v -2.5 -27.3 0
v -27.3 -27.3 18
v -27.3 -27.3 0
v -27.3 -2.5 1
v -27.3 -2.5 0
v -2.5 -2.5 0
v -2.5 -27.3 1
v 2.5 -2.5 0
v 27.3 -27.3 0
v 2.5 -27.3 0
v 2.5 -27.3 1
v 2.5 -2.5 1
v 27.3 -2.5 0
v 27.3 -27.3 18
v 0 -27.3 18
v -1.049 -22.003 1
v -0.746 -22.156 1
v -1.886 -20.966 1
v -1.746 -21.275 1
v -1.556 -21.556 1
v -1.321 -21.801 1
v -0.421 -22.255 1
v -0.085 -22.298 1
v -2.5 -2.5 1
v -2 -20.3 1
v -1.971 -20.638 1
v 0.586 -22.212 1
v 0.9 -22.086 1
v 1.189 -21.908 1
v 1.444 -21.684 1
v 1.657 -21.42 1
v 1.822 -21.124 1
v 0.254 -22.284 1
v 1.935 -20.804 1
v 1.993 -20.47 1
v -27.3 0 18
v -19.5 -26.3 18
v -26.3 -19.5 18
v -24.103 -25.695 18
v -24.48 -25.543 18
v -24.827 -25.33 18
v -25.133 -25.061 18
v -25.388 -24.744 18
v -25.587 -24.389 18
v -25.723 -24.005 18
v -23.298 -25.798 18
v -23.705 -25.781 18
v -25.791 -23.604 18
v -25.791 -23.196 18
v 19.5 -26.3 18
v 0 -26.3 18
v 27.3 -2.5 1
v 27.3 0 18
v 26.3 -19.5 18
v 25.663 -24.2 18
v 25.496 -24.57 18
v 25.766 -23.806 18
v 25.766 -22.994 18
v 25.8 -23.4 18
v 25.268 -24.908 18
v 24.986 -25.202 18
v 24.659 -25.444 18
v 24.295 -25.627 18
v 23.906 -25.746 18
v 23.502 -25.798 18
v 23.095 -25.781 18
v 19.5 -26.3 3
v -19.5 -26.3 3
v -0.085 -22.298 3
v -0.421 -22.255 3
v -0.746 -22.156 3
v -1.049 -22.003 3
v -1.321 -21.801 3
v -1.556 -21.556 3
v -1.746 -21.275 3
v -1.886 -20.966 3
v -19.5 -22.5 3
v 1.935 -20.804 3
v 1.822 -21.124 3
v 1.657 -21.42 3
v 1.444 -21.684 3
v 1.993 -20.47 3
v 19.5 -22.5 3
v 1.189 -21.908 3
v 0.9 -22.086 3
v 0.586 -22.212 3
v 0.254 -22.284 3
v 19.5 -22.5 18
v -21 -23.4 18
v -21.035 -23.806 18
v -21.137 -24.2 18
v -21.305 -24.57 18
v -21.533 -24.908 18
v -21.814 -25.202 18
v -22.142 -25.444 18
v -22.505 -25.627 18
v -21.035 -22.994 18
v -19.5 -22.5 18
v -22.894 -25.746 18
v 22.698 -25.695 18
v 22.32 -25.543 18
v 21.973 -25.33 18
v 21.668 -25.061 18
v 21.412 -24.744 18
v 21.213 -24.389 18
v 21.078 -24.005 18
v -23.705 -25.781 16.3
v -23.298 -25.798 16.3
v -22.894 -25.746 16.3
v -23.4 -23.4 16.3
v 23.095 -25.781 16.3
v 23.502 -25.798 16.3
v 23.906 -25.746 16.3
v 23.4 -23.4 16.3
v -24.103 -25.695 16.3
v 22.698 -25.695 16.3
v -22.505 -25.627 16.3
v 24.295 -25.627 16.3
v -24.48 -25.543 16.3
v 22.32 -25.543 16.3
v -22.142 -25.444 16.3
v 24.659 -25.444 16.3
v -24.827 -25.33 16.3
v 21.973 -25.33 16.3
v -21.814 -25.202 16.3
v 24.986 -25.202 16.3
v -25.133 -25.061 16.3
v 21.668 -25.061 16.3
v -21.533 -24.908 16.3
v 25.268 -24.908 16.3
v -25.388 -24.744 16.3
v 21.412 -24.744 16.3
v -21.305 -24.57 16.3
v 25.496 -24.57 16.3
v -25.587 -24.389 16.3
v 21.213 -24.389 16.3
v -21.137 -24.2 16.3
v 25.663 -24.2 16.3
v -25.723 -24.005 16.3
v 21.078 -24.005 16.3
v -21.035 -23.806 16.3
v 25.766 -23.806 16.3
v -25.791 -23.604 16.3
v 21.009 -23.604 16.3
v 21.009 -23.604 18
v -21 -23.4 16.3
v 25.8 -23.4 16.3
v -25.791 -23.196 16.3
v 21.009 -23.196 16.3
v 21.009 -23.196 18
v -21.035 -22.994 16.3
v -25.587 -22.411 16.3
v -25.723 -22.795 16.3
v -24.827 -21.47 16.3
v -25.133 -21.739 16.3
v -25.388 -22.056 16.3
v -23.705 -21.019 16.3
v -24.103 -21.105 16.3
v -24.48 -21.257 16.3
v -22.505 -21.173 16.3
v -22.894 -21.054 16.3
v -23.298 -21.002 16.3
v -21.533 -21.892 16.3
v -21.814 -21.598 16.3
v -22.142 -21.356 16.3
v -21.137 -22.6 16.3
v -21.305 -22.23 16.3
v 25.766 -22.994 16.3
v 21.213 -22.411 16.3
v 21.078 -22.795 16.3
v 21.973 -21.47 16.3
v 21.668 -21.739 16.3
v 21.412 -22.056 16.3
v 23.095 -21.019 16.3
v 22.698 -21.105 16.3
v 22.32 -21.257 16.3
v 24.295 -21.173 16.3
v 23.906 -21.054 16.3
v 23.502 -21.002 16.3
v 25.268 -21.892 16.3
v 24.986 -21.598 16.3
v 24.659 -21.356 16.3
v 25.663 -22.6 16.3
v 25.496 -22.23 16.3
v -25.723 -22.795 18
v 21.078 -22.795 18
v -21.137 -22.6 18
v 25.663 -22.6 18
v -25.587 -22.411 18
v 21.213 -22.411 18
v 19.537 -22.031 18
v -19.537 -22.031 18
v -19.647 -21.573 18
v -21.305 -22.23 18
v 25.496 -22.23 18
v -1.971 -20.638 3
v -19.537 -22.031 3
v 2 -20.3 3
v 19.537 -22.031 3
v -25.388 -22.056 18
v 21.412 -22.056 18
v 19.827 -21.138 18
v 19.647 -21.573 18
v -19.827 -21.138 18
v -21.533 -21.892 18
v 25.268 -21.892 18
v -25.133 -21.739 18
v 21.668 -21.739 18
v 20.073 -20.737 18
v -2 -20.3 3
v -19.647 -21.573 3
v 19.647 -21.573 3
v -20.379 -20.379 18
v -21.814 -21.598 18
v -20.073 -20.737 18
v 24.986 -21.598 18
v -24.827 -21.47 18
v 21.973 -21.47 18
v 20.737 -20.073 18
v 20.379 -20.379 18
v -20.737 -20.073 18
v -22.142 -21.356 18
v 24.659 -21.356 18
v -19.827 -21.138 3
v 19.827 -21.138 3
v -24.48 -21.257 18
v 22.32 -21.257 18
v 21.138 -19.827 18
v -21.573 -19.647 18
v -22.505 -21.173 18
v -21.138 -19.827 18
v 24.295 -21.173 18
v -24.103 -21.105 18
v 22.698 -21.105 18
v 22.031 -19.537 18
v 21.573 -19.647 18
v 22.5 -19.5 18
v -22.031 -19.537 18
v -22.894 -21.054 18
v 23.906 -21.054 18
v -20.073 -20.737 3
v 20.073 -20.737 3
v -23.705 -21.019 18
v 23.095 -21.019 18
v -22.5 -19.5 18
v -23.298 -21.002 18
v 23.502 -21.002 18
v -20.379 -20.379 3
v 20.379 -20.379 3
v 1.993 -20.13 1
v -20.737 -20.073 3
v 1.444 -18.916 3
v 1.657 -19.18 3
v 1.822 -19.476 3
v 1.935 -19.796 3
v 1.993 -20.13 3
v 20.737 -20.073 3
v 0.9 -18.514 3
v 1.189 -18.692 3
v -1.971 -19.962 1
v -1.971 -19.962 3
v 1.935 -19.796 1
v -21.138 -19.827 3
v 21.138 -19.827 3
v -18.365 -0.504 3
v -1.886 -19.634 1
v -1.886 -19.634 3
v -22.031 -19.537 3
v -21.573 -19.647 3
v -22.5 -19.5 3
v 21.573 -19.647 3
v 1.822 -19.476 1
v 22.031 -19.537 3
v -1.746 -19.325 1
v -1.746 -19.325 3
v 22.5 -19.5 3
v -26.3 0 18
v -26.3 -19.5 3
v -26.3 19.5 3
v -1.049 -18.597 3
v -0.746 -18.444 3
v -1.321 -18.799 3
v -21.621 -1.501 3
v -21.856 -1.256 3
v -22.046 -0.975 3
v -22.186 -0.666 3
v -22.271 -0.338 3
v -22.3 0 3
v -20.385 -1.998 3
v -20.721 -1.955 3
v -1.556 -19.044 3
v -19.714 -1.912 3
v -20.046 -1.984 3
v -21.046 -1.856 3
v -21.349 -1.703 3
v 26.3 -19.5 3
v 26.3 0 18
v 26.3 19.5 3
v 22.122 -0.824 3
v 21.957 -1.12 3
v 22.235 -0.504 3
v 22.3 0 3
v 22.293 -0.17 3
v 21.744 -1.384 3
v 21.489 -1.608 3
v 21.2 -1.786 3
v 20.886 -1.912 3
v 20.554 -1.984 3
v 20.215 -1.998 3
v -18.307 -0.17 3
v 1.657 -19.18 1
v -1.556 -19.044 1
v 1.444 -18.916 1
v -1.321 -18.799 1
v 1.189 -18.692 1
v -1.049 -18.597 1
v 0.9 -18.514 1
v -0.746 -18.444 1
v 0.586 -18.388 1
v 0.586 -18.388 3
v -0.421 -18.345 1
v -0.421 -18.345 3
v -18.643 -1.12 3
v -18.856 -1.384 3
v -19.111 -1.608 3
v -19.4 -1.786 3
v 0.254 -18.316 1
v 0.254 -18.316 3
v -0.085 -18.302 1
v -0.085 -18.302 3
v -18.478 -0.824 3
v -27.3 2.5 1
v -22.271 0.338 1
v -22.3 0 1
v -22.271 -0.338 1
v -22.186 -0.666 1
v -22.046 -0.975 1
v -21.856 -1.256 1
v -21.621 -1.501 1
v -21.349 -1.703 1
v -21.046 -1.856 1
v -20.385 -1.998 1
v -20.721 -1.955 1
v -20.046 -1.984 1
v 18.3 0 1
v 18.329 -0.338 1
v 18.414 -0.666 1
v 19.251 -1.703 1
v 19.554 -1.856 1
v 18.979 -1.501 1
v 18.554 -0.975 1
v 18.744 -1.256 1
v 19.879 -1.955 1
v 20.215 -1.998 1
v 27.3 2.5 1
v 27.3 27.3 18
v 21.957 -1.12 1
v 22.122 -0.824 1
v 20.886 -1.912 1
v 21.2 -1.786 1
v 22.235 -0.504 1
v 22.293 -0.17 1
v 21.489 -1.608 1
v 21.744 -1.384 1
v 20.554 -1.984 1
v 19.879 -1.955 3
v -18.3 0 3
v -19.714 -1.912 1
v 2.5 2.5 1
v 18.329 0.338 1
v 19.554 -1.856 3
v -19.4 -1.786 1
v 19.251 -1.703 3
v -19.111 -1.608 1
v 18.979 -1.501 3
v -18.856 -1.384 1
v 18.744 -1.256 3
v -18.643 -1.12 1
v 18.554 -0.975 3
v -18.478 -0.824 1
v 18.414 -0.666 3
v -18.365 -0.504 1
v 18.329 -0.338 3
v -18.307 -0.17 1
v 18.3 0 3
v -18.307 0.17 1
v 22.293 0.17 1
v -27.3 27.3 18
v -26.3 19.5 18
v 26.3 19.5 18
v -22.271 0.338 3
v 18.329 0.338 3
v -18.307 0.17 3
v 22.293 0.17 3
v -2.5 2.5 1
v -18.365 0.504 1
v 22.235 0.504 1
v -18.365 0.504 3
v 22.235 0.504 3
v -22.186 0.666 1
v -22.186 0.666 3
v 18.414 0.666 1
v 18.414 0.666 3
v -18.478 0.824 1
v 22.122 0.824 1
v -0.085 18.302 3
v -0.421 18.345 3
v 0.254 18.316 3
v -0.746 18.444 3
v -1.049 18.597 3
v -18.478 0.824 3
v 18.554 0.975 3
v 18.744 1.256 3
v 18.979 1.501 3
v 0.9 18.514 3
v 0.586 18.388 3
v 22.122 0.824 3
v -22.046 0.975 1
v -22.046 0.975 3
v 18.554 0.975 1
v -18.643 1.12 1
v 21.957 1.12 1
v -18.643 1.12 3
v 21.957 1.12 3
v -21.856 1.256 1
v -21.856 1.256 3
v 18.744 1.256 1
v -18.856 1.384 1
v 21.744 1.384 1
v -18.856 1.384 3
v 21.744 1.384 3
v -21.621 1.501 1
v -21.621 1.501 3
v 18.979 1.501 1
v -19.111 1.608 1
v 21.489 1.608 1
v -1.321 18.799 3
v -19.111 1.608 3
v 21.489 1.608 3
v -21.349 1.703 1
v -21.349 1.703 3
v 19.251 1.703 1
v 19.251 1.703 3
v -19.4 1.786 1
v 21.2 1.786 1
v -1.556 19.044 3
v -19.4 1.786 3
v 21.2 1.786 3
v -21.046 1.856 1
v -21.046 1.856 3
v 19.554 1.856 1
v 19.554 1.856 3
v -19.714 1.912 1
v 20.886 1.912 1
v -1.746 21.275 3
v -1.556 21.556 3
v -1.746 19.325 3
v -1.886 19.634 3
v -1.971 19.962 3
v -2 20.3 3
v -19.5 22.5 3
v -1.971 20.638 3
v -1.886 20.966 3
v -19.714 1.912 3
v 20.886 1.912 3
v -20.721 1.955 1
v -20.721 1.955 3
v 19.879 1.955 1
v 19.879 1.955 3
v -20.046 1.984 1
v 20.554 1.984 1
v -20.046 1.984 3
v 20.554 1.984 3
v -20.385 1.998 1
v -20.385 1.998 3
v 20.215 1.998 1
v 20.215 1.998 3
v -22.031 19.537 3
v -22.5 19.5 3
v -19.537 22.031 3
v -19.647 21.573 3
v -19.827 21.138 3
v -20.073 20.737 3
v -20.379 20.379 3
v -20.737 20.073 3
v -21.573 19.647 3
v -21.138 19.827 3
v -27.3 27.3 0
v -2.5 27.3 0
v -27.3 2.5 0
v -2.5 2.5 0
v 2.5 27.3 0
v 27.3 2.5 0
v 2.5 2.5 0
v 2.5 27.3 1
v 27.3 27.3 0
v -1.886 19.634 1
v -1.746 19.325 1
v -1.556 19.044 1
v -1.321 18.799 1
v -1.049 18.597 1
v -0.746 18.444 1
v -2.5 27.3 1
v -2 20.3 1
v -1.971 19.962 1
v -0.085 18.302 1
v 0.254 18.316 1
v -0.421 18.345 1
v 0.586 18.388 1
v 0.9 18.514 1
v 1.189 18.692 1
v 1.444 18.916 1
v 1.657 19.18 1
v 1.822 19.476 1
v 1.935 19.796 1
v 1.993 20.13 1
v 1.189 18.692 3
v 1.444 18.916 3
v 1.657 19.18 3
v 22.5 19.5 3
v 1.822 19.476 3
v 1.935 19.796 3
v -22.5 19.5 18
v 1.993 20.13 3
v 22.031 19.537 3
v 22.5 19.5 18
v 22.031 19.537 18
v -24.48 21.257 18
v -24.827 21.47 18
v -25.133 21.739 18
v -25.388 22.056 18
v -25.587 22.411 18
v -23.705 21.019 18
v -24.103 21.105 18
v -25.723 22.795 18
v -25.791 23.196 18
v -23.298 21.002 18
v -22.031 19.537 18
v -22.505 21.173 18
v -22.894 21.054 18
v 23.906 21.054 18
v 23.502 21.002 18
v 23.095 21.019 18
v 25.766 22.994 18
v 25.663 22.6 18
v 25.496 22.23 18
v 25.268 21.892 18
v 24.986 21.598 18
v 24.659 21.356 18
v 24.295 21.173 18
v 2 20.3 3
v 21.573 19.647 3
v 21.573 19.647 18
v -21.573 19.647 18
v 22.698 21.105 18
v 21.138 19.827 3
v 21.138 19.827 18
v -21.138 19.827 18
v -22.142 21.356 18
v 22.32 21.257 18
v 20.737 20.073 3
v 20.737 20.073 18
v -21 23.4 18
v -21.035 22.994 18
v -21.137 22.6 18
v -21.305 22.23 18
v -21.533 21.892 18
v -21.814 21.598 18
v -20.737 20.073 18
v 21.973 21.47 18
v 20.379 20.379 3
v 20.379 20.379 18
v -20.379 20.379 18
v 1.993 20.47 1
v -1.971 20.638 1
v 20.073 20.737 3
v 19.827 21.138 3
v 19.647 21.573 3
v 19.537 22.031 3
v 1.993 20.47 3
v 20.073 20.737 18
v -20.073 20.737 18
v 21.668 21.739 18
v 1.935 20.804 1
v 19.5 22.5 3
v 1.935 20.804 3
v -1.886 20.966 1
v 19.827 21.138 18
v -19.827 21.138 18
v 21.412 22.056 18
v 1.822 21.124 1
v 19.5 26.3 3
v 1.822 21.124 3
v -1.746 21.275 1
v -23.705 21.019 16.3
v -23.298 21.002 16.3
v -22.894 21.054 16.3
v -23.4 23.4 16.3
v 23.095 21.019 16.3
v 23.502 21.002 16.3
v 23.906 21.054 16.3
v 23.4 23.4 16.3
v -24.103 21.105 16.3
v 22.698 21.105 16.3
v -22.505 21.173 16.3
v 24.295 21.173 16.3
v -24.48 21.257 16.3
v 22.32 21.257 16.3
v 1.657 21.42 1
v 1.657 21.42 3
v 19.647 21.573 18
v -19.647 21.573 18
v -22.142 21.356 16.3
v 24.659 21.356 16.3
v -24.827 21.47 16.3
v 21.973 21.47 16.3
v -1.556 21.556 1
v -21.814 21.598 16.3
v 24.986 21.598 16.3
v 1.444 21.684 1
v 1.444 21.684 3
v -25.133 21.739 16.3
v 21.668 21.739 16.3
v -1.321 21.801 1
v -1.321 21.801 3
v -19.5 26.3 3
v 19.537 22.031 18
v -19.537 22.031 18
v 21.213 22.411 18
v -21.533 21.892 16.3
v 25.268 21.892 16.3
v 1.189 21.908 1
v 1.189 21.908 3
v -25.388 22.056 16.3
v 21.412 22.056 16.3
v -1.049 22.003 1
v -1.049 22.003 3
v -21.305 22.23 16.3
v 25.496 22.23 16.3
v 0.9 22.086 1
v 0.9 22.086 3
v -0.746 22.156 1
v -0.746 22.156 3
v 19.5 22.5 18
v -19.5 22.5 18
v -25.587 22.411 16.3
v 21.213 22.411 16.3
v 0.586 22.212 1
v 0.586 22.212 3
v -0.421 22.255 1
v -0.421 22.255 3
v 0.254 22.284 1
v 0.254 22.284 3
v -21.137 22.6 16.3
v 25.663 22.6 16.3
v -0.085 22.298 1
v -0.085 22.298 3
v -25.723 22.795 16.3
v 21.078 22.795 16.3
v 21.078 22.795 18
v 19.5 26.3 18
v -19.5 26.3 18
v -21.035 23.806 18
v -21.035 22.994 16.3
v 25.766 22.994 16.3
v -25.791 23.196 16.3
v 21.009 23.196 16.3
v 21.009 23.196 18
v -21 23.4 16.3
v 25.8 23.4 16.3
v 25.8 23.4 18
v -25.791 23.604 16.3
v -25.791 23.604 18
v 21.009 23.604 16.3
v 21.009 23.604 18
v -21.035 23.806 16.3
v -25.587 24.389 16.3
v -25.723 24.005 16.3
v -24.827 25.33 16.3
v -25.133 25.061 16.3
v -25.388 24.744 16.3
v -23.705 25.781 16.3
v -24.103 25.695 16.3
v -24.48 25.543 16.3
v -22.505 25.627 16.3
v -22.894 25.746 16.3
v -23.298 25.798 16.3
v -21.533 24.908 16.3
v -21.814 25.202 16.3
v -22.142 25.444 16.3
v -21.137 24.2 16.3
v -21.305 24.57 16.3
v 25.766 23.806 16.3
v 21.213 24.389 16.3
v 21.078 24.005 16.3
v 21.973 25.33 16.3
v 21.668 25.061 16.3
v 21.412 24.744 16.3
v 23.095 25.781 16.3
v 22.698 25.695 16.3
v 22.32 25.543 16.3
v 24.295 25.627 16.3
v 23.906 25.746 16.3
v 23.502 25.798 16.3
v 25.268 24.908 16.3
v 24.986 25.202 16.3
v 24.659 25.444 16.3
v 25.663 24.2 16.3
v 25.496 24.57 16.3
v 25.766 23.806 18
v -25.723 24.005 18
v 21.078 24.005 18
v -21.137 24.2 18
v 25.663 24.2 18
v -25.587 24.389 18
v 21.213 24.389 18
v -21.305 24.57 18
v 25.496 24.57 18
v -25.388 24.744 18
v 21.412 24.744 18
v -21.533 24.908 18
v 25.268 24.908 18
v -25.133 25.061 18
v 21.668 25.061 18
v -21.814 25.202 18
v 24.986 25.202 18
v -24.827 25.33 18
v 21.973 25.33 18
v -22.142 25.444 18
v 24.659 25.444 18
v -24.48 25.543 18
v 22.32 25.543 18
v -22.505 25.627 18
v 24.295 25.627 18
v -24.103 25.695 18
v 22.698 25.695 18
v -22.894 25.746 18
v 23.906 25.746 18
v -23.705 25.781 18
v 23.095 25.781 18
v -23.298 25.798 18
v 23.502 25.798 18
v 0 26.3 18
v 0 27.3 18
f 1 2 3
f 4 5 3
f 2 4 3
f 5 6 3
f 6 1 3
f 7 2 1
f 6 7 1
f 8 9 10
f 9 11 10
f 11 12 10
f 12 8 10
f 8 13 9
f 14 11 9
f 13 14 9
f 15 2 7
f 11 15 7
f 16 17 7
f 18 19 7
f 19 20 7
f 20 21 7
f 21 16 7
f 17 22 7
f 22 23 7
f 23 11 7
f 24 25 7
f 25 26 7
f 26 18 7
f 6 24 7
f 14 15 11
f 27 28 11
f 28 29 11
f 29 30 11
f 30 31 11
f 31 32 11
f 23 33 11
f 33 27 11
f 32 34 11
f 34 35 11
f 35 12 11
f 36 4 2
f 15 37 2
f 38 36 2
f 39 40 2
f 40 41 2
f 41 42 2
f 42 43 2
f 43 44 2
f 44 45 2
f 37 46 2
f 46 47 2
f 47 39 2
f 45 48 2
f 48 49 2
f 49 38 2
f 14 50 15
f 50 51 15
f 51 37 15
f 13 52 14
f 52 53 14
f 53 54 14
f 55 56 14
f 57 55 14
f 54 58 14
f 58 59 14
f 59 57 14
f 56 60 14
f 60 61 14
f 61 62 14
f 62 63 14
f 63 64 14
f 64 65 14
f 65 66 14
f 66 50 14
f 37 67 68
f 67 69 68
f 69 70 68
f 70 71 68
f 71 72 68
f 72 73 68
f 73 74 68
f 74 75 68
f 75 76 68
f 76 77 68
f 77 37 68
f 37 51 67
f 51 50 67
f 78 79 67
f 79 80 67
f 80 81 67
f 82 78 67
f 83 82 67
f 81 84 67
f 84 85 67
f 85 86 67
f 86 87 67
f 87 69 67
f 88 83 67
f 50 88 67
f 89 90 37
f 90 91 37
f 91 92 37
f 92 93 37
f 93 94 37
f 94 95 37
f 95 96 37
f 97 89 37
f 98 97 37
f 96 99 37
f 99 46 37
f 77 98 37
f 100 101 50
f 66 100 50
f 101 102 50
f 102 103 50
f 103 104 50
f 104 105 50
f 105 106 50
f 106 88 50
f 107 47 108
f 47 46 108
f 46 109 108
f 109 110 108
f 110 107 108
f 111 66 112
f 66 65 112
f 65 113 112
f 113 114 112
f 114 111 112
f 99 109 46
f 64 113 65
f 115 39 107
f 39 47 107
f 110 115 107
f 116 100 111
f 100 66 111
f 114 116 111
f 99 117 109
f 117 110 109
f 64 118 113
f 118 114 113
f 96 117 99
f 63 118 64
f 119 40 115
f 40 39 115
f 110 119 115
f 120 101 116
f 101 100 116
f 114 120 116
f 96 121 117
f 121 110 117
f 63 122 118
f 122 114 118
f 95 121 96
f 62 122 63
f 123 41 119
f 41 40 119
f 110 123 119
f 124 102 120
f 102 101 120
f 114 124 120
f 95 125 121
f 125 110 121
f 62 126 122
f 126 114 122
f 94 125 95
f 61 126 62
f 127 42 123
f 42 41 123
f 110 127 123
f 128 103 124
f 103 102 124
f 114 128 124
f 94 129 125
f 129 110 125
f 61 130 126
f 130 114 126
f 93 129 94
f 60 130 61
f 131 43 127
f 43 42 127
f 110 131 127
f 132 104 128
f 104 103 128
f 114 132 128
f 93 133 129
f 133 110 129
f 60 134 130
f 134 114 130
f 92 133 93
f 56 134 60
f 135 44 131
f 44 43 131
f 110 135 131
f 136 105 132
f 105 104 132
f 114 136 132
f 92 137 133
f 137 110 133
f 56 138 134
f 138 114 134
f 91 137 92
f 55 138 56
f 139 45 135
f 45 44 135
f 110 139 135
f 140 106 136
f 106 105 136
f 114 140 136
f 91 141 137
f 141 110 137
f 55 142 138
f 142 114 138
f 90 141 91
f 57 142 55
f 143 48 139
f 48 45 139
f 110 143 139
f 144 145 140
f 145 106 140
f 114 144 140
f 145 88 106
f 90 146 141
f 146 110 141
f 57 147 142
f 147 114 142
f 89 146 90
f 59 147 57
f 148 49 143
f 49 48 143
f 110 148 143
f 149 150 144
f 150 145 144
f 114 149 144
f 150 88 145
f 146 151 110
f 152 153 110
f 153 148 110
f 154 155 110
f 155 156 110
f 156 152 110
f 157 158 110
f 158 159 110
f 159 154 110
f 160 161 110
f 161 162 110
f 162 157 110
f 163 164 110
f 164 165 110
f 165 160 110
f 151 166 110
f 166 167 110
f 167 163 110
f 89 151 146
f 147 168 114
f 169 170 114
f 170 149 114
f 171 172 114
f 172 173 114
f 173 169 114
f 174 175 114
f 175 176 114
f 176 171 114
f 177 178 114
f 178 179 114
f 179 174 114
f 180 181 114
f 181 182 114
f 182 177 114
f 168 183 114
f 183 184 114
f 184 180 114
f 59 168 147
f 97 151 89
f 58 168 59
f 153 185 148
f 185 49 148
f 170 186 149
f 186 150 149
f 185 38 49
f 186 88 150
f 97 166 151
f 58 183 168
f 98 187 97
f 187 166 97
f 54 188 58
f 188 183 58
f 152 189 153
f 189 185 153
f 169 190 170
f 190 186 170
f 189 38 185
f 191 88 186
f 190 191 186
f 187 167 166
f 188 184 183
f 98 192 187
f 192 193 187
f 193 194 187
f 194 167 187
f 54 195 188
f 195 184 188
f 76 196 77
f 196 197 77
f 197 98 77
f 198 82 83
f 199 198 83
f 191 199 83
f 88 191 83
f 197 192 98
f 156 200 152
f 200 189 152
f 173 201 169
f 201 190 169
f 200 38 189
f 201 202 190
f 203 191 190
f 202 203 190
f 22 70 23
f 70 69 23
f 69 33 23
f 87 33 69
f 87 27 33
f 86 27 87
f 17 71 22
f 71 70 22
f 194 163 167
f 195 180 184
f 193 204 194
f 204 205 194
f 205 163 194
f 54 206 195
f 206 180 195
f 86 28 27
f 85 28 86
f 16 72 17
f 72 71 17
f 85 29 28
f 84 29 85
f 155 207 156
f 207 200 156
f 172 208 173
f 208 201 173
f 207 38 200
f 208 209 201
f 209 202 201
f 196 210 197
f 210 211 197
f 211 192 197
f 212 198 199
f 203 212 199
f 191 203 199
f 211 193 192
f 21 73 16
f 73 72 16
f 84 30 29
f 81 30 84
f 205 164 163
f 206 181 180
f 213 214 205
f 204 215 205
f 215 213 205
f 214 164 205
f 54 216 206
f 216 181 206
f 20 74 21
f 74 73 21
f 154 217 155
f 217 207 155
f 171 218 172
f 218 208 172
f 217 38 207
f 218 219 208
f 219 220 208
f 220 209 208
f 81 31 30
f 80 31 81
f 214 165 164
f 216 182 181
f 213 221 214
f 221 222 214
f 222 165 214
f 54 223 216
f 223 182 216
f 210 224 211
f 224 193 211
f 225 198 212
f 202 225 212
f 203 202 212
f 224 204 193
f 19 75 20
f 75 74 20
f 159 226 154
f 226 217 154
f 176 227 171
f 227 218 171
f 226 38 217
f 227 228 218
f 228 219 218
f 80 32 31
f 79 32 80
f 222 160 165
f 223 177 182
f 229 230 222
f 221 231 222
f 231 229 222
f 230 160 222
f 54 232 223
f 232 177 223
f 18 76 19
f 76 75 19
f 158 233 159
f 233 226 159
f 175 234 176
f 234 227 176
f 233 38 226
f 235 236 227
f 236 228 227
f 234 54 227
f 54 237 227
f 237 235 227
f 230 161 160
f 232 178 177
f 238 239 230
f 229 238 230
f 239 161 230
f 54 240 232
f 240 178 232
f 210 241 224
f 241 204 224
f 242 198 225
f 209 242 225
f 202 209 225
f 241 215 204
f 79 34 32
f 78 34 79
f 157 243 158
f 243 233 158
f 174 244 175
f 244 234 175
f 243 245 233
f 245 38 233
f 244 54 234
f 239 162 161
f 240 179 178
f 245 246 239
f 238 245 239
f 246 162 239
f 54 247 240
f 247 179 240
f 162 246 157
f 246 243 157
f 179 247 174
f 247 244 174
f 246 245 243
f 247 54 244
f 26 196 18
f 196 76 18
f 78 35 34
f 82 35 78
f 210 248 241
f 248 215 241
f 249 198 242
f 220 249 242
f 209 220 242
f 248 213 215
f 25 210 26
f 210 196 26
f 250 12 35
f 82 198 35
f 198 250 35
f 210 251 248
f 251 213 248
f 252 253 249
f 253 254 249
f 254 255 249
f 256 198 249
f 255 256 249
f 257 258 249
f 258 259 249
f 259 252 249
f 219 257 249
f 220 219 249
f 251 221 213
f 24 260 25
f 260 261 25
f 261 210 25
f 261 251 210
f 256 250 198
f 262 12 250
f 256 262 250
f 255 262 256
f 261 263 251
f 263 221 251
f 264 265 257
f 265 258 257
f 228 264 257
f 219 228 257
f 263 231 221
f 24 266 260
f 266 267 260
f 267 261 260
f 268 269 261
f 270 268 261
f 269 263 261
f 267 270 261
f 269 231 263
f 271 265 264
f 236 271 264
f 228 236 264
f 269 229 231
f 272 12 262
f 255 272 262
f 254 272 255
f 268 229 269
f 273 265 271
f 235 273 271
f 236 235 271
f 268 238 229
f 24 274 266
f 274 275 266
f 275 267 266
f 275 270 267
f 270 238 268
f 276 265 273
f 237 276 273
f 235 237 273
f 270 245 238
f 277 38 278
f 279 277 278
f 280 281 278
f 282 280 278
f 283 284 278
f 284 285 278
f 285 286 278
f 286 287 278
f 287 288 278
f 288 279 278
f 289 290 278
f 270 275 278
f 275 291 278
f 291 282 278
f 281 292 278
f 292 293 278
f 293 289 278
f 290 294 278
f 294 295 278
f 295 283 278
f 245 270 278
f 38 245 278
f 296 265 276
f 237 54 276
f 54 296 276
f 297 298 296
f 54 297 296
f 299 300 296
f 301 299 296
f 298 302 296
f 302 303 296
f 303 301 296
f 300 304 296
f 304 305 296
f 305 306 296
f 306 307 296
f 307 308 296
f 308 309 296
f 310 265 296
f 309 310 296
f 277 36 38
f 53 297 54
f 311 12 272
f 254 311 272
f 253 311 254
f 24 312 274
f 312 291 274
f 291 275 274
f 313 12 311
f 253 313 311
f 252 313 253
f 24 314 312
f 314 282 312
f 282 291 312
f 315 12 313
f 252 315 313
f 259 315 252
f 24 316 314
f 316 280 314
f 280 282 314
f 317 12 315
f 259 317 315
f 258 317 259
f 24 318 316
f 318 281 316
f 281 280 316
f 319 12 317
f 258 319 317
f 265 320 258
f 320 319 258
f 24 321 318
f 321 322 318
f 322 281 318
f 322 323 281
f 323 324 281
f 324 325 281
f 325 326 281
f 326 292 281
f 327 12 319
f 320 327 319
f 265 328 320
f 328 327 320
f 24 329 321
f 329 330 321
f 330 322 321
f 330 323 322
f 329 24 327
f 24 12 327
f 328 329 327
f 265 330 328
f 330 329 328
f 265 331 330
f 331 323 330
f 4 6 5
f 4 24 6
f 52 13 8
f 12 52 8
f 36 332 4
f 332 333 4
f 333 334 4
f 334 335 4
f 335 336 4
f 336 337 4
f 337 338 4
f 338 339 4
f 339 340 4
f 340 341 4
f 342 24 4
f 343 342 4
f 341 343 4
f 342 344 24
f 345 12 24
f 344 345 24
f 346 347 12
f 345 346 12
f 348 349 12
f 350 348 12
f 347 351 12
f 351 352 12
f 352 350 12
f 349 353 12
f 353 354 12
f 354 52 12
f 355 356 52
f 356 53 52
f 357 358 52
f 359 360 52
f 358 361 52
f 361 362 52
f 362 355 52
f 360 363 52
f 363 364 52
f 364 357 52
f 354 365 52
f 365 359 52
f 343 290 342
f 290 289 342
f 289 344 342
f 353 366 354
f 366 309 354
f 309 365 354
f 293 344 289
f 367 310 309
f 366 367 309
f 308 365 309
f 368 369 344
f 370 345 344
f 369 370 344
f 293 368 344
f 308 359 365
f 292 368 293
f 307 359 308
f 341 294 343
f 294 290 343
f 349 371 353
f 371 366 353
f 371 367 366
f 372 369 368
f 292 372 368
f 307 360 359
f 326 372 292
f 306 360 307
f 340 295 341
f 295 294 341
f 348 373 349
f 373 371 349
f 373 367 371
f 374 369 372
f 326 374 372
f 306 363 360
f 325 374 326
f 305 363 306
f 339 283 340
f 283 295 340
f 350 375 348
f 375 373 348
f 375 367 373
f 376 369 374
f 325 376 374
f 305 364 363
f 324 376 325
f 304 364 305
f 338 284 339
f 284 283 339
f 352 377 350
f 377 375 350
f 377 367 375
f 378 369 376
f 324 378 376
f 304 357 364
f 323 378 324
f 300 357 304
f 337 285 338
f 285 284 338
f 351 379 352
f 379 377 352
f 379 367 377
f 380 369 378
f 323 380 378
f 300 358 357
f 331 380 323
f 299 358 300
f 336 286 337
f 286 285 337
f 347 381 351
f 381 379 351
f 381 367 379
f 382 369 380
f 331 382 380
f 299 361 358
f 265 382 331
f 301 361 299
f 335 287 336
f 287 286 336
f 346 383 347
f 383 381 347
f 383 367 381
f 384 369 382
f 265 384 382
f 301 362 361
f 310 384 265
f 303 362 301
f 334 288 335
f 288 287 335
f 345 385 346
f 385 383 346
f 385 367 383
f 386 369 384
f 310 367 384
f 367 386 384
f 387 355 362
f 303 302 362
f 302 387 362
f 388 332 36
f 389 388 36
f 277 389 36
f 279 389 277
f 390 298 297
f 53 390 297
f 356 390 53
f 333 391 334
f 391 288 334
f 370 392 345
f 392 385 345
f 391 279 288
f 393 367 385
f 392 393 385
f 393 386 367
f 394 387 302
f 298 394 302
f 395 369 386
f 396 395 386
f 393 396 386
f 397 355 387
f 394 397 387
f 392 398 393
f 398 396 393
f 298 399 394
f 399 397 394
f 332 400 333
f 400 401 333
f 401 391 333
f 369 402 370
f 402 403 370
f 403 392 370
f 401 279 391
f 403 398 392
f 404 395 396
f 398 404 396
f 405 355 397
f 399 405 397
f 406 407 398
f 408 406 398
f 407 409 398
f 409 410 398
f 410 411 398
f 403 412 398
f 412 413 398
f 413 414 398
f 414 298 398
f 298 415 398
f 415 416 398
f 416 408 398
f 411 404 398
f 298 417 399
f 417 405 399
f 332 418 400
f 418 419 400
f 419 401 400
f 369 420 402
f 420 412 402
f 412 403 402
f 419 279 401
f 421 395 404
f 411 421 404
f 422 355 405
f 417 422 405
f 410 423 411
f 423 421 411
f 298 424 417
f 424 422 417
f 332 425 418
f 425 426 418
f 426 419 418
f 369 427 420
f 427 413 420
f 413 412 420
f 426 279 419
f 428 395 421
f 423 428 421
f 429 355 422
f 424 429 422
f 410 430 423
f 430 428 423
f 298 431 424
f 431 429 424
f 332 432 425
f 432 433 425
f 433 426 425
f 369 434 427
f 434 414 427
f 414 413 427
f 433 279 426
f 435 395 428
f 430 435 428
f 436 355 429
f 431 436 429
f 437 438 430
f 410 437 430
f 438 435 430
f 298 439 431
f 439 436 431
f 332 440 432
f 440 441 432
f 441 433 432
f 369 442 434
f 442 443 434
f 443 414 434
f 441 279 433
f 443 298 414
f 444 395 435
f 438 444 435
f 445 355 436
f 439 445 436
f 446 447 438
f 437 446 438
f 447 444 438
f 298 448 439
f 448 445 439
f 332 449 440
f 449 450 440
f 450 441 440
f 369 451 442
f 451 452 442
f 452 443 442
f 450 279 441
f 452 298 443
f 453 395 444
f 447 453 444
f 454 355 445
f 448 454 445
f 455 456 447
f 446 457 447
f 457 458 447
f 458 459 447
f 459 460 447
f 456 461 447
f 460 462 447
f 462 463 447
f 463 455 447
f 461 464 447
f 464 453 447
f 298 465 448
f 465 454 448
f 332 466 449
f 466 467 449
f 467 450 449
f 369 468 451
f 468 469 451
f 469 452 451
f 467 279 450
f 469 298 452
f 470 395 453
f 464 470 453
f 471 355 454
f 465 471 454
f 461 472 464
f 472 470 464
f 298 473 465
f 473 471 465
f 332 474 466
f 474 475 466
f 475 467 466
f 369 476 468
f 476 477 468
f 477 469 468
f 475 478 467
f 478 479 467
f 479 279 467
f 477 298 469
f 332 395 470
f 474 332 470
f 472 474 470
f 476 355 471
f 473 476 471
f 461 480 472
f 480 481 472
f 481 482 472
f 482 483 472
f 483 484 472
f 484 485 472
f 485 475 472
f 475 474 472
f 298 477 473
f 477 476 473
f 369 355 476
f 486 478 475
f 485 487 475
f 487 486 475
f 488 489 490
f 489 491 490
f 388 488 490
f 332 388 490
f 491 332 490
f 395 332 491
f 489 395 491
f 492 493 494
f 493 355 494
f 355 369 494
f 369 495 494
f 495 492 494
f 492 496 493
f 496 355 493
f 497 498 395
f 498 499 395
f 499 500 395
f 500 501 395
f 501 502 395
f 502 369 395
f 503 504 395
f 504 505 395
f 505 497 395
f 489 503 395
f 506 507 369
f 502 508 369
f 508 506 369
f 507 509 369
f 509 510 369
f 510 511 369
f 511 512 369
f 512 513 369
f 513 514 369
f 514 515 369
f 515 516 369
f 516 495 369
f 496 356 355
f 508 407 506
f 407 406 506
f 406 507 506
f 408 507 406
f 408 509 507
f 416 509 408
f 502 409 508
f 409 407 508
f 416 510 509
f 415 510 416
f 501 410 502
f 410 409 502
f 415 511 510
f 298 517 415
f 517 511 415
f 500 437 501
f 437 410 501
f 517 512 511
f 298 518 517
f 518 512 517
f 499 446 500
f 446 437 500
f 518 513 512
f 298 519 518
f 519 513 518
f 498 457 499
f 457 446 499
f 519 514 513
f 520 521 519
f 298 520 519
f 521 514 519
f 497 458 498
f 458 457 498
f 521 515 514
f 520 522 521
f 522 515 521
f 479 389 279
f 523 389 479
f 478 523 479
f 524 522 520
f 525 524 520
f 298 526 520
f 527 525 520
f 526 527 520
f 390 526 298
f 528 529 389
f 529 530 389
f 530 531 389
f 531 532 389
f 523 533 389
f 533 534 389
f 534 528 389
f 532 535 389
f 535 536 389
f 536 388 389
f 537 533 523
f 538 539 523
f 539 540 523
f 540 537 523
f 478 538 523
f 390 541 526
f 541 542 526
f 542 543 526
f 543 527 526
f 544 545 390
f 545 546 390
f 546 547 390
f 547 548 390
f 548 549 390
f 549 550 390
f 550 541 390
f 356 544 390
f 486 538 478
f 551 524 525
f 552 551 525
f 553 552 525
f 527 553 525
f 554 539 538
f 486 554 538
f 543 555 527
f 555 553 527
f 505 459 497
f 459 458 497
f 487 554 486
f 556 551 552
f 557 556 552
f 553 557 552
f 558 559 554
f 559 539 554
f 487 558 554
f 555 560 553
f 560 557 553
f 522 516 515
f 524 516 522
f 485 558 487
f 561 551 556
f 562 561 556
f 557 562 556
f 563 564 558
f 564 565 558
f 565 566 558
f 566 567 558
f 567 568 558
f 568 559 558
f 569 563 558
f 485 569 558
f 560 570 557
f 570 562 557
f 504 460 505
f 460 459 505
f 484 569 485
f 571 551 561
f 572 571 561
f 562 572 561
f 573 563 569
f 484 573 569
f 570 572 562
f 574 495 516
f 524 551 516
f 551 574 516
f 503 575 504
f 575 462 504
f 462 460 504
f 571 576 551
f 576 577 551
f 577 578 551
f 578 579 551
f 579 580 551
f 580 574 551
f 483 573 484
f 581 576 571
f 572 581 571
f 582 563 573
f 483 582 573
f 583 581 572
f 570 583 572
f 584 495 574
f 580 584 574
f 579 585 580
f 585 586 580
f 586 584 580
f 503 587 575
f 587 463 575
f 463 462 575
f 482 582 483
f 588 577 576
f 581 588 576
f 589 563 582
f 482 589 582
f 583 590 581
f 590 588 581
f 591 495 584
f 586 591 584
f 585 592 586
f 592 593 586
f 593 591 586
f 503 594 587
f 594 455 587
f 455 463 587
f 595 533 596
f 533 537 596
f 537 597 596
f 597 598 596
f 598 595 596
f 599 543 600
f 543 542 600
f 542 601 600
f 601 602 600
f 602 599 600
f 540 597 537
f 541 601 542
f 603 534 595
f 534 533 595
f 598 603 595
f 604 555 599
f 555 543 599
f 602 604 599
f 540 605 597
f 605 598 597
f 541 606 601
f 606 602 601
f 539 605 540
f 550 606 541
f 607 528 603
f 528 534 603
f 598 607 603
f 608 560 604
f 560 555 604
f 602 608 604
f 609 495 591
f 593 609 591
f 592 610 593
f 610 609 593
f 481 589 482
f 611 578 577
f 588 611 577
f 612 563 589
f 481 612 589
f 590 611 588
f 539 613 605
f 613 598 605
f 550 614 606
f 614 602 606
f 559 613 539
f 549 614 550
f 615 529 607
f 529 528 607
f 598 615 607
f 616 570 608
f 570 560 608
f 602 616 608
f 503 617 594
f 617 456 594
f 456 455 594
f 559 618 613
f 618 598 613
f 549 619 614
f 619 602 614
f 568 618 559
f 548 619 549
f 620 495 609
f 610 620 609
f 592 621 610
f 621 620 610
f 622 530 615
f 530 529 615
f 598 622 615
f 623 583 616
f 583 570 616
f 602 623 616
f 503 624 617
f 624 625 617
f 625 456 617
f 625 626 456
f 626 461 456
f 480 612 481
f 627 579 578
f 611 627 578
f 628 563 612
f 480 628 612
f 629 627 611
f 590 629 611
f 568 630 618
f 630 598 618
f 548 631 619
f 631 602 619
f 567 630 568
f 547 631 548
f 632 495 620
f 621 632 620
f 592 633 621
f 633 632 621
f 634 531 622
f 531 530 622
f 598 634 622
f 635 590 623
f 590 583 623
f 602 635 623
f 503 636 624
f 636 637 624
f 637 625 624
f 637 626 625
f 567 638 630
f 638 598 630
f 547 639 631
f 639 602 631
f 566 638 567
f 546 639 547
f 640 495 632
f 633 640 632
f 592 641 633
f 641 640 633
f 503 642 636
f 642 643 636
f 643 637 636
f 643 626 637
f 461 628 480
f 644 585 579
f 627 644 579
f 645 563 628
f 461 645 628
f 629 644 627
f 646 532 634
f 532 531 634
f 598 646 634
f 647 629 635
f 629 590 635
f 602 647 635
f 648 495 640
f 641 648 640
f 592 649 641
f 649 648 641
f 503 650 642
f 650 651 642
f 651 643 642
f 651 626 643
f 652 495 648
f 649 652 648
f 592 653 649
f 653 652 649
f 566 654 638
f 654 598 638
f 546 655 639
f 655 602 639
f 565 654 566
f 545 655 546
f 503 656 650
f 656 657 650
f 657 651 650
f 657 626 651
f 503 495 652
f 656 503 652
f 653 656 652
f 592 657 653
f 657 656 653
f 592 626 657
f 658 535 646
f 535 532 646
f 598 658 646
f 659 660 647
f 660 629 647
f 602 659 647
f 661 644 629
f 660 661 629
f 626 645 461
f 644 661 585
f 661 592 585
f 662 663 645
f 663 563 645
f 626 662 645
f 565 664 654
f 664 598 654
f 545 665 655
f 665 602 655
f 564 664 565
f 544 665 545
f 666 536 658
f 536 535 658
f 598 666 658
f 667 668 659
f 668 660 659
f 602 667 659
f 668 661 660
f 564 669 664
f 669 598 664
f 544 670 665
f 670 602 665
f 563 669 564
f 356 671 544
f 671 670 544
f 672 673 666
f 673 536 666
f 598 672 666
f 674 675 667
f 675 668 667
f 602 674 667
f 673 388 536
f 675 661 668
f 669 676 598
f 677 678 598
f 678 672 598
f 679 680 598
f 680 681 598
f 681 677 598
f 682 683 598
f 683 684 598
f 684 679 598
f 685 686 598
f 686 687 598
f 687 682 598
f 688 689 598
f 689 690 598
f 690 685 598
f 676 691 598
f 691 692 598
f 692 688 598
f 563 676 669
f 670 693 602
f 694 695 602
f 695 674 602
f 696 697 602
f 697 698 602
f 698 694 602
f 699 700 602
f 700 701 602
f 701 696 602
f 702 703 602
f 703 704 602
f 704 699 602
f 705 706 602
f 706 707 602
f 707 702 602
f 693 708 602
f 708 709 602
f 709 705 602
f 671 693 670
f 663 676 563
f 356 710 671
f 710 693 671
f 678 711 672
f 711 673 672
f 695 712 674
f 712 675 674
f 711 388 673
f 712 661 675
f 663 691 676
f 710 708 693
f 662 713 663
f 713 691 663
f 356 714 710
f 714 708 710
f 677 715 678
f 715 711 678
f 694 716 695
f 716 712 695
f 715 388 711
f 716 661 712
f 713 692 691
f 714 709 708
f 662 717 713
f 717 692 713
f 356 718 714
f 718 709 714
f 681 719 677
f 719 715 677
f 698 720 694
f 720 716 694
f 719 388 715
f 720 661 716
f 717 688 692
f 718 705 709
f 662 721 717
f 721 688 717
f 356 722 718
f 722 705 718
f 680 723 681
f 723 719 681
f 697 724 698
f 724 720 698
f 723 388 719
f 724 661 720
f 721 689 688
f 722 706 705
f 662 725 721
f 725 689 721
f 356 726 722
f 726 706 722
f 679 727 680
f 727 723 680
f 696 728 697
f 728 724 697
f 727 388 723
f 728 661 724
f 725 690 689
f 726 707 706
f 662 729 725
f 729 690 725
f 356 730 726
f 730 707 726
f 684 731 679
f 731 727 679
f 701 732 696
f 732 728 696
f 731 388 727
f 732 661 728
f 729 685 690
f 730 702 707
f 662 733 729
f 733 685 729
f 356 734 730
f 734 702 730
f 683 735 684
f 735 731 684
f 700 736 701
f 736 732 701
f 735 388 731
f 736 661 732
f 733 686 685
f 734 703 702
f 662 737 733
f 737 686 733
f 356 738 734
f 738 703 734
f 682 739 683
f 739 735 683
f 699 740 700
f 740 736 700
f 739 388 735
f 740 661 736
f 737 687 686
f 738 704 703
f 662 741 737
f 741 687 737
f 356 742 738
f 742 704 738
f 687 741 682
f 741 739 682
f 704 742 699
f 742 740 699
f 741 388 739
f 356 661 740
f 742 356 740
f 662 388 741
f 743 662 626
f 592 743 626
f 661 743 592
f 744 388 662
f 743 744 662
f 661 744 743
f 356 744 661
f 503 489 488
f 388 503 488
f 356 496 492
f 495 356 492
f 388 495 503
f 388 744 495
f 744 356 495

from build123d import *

# Parameters (mm, degrees)
SKICA1_W                 = 54.6
SKICA1_H                 = 54.6
P_IDAT_VYSUNUT_M2_DEPTH  = 3
SKICA5_W                 = 5
SKICA5_H                 = 24.8
SKICA5_W_2               = 54.6
SKICA5_H_2               = 5
ODEBRAT_VYSUNUT_M3_DEPTH = 1
SKICA14_W                = 52.6
SKICA14_H                = 1
P_IDAT_VYSUNUT_M9_DEPTH  = 15
SKICA17_R                = 2
ODEBRAT_VYSUNUT_M8_DEPTH = 7
SKICA19_W                = 7.8
SKICA19_H                = 7.8
P_IDAT_VYSUNUT_M10_DEPTH = 18
SKICA20_R                = 2.4
ODEBRAT_VYSUNUT_M9_DEPTH = 1.7
ZAOBLIT1_R               = 3


with BuildPart() as part:
    # Skica1 → Přidat vysunutím2 (new body)
    with BuildSketch(Plane.XY):
        Rectangle(SKICA1_W, SKICA1_H)
    extrude(amount=P_IDAT_VYSUNUT_M2_DEPTH)

    # Skica5 → Odebrat vysunutím3 (cut)
    with BuildSketch(Plane(origin=(0, 0, 0), x_dir=(-1, 0, 0), z_dir=(0, 0, -1))):
        with Locations((0, 14.9)):
            Rectangle(SKICA5_W, SKICA5_H)
        Rectangle(SKICA5_W_2, SKICA5_H_2)
        with Locations((0, -14.9)):
            Rectangle(SKICA5_W, SKICA5_H)
    extrude(amount=-ODEBRAT_VYSUNUT_M3_DEPTH, mode=Mode.SUBTRACT)

    # Skica14 → Přidat vysunutím9 (add)
    with BuildSketch(Plane.XY.offset(3)):
        Polygon((27.3, 27.3), (-27.3, 27.3), (-27.3, -27.3), (-26.3, -27.3), (-26.3, -26.3), (-26.3, 26.3), (26.3, 26.3), (26.3, -26.3), (26.3, -27.3), (27.3, -27.3), align=None)
        with Locations((0, -26.8)):
            Rectangle(SKICA14_W, SKICA14_H)
    extrude(amount=P_IDAT_VYSUNUT_M9_DEPTH)

    # Skica17 → Odebrat vysunutím8 (cut)
    with BuildSketch(Plane(origin=(0, 0, 1), x_dir=(-1, 0, 0), z_dir=(0, 0, -1))):
        with Locations((-20.3, 0)):
            Circle(SKICA17_R)
        with Locations((20.3, 0)):
            Circle(SKICA17_R)
        with Locations((0, 20.3)):
            Circle(SKICA17_R)
        with Locations((0, -20.3)):
            Circle(SKICA17_R)
    extrude(amount=-ODEBRAT_VYSUNUT_M8_DEPTH, mode=Mode.SUBTRACT)

    # Skica19 → Přidat vysunutím10 (add)
    with BuildSketch(Plane(origin=(0, 0, 0), x_dir=(-1, 0, 0), z_dir=(0, 0, -1))):
        with Locations((-23.4, 23.4)):
            Rectangle(SKICA19_W, SKICA19_H)
        with Locations((23.4, 23.4)):
            Rectangle(SKICA19_W, SKICA19_H)
        with Locations((-23.4, -23.4)):
            Rectangle(SKICA19_W, SKICA19_H)
        with Locations((23.4, -23.4)):
            Rectangle(SKICA19_W, SKICA19_H)
    extrude(amount=-P_IDAT_VYSUNUT_M10_DEPTH)

    # Skica20 → Odebrat vysunutím9 (cut)
    with BuildSketch(Plane.XY.offset(18)):
        with Locations((-23.4, -23.4)):
            Circle(SKICA20_R)
        with Locations((-23.4, 23.4)):
            Circle(SKICA20_R)
        with Locations((23.400280565, 23.4)):
            Circle(SKICA20_R)
        with Locations((23.400280565, -23.4)):
            Circle(SKICA20_R)
    extrude(amount=-ODEBRAT_VYSUNUT_M9_DEPTH, mode=Mode.SUBTRACT)

    # Zaoblit1
    zaoblit1_edges = [part.edges().sort_by_distance(p)[0] for p in [
        (19.5, 19.5, 10.5),
        (-19.5, 19.5, 10.5),
        (19.5, -19.5, 10.5),
        (-19.5, -19.5, 10.5),
    ]]
    fillet(zaoblit1_edges, radius=ZAOBLIT1_R)


solid = part.part
